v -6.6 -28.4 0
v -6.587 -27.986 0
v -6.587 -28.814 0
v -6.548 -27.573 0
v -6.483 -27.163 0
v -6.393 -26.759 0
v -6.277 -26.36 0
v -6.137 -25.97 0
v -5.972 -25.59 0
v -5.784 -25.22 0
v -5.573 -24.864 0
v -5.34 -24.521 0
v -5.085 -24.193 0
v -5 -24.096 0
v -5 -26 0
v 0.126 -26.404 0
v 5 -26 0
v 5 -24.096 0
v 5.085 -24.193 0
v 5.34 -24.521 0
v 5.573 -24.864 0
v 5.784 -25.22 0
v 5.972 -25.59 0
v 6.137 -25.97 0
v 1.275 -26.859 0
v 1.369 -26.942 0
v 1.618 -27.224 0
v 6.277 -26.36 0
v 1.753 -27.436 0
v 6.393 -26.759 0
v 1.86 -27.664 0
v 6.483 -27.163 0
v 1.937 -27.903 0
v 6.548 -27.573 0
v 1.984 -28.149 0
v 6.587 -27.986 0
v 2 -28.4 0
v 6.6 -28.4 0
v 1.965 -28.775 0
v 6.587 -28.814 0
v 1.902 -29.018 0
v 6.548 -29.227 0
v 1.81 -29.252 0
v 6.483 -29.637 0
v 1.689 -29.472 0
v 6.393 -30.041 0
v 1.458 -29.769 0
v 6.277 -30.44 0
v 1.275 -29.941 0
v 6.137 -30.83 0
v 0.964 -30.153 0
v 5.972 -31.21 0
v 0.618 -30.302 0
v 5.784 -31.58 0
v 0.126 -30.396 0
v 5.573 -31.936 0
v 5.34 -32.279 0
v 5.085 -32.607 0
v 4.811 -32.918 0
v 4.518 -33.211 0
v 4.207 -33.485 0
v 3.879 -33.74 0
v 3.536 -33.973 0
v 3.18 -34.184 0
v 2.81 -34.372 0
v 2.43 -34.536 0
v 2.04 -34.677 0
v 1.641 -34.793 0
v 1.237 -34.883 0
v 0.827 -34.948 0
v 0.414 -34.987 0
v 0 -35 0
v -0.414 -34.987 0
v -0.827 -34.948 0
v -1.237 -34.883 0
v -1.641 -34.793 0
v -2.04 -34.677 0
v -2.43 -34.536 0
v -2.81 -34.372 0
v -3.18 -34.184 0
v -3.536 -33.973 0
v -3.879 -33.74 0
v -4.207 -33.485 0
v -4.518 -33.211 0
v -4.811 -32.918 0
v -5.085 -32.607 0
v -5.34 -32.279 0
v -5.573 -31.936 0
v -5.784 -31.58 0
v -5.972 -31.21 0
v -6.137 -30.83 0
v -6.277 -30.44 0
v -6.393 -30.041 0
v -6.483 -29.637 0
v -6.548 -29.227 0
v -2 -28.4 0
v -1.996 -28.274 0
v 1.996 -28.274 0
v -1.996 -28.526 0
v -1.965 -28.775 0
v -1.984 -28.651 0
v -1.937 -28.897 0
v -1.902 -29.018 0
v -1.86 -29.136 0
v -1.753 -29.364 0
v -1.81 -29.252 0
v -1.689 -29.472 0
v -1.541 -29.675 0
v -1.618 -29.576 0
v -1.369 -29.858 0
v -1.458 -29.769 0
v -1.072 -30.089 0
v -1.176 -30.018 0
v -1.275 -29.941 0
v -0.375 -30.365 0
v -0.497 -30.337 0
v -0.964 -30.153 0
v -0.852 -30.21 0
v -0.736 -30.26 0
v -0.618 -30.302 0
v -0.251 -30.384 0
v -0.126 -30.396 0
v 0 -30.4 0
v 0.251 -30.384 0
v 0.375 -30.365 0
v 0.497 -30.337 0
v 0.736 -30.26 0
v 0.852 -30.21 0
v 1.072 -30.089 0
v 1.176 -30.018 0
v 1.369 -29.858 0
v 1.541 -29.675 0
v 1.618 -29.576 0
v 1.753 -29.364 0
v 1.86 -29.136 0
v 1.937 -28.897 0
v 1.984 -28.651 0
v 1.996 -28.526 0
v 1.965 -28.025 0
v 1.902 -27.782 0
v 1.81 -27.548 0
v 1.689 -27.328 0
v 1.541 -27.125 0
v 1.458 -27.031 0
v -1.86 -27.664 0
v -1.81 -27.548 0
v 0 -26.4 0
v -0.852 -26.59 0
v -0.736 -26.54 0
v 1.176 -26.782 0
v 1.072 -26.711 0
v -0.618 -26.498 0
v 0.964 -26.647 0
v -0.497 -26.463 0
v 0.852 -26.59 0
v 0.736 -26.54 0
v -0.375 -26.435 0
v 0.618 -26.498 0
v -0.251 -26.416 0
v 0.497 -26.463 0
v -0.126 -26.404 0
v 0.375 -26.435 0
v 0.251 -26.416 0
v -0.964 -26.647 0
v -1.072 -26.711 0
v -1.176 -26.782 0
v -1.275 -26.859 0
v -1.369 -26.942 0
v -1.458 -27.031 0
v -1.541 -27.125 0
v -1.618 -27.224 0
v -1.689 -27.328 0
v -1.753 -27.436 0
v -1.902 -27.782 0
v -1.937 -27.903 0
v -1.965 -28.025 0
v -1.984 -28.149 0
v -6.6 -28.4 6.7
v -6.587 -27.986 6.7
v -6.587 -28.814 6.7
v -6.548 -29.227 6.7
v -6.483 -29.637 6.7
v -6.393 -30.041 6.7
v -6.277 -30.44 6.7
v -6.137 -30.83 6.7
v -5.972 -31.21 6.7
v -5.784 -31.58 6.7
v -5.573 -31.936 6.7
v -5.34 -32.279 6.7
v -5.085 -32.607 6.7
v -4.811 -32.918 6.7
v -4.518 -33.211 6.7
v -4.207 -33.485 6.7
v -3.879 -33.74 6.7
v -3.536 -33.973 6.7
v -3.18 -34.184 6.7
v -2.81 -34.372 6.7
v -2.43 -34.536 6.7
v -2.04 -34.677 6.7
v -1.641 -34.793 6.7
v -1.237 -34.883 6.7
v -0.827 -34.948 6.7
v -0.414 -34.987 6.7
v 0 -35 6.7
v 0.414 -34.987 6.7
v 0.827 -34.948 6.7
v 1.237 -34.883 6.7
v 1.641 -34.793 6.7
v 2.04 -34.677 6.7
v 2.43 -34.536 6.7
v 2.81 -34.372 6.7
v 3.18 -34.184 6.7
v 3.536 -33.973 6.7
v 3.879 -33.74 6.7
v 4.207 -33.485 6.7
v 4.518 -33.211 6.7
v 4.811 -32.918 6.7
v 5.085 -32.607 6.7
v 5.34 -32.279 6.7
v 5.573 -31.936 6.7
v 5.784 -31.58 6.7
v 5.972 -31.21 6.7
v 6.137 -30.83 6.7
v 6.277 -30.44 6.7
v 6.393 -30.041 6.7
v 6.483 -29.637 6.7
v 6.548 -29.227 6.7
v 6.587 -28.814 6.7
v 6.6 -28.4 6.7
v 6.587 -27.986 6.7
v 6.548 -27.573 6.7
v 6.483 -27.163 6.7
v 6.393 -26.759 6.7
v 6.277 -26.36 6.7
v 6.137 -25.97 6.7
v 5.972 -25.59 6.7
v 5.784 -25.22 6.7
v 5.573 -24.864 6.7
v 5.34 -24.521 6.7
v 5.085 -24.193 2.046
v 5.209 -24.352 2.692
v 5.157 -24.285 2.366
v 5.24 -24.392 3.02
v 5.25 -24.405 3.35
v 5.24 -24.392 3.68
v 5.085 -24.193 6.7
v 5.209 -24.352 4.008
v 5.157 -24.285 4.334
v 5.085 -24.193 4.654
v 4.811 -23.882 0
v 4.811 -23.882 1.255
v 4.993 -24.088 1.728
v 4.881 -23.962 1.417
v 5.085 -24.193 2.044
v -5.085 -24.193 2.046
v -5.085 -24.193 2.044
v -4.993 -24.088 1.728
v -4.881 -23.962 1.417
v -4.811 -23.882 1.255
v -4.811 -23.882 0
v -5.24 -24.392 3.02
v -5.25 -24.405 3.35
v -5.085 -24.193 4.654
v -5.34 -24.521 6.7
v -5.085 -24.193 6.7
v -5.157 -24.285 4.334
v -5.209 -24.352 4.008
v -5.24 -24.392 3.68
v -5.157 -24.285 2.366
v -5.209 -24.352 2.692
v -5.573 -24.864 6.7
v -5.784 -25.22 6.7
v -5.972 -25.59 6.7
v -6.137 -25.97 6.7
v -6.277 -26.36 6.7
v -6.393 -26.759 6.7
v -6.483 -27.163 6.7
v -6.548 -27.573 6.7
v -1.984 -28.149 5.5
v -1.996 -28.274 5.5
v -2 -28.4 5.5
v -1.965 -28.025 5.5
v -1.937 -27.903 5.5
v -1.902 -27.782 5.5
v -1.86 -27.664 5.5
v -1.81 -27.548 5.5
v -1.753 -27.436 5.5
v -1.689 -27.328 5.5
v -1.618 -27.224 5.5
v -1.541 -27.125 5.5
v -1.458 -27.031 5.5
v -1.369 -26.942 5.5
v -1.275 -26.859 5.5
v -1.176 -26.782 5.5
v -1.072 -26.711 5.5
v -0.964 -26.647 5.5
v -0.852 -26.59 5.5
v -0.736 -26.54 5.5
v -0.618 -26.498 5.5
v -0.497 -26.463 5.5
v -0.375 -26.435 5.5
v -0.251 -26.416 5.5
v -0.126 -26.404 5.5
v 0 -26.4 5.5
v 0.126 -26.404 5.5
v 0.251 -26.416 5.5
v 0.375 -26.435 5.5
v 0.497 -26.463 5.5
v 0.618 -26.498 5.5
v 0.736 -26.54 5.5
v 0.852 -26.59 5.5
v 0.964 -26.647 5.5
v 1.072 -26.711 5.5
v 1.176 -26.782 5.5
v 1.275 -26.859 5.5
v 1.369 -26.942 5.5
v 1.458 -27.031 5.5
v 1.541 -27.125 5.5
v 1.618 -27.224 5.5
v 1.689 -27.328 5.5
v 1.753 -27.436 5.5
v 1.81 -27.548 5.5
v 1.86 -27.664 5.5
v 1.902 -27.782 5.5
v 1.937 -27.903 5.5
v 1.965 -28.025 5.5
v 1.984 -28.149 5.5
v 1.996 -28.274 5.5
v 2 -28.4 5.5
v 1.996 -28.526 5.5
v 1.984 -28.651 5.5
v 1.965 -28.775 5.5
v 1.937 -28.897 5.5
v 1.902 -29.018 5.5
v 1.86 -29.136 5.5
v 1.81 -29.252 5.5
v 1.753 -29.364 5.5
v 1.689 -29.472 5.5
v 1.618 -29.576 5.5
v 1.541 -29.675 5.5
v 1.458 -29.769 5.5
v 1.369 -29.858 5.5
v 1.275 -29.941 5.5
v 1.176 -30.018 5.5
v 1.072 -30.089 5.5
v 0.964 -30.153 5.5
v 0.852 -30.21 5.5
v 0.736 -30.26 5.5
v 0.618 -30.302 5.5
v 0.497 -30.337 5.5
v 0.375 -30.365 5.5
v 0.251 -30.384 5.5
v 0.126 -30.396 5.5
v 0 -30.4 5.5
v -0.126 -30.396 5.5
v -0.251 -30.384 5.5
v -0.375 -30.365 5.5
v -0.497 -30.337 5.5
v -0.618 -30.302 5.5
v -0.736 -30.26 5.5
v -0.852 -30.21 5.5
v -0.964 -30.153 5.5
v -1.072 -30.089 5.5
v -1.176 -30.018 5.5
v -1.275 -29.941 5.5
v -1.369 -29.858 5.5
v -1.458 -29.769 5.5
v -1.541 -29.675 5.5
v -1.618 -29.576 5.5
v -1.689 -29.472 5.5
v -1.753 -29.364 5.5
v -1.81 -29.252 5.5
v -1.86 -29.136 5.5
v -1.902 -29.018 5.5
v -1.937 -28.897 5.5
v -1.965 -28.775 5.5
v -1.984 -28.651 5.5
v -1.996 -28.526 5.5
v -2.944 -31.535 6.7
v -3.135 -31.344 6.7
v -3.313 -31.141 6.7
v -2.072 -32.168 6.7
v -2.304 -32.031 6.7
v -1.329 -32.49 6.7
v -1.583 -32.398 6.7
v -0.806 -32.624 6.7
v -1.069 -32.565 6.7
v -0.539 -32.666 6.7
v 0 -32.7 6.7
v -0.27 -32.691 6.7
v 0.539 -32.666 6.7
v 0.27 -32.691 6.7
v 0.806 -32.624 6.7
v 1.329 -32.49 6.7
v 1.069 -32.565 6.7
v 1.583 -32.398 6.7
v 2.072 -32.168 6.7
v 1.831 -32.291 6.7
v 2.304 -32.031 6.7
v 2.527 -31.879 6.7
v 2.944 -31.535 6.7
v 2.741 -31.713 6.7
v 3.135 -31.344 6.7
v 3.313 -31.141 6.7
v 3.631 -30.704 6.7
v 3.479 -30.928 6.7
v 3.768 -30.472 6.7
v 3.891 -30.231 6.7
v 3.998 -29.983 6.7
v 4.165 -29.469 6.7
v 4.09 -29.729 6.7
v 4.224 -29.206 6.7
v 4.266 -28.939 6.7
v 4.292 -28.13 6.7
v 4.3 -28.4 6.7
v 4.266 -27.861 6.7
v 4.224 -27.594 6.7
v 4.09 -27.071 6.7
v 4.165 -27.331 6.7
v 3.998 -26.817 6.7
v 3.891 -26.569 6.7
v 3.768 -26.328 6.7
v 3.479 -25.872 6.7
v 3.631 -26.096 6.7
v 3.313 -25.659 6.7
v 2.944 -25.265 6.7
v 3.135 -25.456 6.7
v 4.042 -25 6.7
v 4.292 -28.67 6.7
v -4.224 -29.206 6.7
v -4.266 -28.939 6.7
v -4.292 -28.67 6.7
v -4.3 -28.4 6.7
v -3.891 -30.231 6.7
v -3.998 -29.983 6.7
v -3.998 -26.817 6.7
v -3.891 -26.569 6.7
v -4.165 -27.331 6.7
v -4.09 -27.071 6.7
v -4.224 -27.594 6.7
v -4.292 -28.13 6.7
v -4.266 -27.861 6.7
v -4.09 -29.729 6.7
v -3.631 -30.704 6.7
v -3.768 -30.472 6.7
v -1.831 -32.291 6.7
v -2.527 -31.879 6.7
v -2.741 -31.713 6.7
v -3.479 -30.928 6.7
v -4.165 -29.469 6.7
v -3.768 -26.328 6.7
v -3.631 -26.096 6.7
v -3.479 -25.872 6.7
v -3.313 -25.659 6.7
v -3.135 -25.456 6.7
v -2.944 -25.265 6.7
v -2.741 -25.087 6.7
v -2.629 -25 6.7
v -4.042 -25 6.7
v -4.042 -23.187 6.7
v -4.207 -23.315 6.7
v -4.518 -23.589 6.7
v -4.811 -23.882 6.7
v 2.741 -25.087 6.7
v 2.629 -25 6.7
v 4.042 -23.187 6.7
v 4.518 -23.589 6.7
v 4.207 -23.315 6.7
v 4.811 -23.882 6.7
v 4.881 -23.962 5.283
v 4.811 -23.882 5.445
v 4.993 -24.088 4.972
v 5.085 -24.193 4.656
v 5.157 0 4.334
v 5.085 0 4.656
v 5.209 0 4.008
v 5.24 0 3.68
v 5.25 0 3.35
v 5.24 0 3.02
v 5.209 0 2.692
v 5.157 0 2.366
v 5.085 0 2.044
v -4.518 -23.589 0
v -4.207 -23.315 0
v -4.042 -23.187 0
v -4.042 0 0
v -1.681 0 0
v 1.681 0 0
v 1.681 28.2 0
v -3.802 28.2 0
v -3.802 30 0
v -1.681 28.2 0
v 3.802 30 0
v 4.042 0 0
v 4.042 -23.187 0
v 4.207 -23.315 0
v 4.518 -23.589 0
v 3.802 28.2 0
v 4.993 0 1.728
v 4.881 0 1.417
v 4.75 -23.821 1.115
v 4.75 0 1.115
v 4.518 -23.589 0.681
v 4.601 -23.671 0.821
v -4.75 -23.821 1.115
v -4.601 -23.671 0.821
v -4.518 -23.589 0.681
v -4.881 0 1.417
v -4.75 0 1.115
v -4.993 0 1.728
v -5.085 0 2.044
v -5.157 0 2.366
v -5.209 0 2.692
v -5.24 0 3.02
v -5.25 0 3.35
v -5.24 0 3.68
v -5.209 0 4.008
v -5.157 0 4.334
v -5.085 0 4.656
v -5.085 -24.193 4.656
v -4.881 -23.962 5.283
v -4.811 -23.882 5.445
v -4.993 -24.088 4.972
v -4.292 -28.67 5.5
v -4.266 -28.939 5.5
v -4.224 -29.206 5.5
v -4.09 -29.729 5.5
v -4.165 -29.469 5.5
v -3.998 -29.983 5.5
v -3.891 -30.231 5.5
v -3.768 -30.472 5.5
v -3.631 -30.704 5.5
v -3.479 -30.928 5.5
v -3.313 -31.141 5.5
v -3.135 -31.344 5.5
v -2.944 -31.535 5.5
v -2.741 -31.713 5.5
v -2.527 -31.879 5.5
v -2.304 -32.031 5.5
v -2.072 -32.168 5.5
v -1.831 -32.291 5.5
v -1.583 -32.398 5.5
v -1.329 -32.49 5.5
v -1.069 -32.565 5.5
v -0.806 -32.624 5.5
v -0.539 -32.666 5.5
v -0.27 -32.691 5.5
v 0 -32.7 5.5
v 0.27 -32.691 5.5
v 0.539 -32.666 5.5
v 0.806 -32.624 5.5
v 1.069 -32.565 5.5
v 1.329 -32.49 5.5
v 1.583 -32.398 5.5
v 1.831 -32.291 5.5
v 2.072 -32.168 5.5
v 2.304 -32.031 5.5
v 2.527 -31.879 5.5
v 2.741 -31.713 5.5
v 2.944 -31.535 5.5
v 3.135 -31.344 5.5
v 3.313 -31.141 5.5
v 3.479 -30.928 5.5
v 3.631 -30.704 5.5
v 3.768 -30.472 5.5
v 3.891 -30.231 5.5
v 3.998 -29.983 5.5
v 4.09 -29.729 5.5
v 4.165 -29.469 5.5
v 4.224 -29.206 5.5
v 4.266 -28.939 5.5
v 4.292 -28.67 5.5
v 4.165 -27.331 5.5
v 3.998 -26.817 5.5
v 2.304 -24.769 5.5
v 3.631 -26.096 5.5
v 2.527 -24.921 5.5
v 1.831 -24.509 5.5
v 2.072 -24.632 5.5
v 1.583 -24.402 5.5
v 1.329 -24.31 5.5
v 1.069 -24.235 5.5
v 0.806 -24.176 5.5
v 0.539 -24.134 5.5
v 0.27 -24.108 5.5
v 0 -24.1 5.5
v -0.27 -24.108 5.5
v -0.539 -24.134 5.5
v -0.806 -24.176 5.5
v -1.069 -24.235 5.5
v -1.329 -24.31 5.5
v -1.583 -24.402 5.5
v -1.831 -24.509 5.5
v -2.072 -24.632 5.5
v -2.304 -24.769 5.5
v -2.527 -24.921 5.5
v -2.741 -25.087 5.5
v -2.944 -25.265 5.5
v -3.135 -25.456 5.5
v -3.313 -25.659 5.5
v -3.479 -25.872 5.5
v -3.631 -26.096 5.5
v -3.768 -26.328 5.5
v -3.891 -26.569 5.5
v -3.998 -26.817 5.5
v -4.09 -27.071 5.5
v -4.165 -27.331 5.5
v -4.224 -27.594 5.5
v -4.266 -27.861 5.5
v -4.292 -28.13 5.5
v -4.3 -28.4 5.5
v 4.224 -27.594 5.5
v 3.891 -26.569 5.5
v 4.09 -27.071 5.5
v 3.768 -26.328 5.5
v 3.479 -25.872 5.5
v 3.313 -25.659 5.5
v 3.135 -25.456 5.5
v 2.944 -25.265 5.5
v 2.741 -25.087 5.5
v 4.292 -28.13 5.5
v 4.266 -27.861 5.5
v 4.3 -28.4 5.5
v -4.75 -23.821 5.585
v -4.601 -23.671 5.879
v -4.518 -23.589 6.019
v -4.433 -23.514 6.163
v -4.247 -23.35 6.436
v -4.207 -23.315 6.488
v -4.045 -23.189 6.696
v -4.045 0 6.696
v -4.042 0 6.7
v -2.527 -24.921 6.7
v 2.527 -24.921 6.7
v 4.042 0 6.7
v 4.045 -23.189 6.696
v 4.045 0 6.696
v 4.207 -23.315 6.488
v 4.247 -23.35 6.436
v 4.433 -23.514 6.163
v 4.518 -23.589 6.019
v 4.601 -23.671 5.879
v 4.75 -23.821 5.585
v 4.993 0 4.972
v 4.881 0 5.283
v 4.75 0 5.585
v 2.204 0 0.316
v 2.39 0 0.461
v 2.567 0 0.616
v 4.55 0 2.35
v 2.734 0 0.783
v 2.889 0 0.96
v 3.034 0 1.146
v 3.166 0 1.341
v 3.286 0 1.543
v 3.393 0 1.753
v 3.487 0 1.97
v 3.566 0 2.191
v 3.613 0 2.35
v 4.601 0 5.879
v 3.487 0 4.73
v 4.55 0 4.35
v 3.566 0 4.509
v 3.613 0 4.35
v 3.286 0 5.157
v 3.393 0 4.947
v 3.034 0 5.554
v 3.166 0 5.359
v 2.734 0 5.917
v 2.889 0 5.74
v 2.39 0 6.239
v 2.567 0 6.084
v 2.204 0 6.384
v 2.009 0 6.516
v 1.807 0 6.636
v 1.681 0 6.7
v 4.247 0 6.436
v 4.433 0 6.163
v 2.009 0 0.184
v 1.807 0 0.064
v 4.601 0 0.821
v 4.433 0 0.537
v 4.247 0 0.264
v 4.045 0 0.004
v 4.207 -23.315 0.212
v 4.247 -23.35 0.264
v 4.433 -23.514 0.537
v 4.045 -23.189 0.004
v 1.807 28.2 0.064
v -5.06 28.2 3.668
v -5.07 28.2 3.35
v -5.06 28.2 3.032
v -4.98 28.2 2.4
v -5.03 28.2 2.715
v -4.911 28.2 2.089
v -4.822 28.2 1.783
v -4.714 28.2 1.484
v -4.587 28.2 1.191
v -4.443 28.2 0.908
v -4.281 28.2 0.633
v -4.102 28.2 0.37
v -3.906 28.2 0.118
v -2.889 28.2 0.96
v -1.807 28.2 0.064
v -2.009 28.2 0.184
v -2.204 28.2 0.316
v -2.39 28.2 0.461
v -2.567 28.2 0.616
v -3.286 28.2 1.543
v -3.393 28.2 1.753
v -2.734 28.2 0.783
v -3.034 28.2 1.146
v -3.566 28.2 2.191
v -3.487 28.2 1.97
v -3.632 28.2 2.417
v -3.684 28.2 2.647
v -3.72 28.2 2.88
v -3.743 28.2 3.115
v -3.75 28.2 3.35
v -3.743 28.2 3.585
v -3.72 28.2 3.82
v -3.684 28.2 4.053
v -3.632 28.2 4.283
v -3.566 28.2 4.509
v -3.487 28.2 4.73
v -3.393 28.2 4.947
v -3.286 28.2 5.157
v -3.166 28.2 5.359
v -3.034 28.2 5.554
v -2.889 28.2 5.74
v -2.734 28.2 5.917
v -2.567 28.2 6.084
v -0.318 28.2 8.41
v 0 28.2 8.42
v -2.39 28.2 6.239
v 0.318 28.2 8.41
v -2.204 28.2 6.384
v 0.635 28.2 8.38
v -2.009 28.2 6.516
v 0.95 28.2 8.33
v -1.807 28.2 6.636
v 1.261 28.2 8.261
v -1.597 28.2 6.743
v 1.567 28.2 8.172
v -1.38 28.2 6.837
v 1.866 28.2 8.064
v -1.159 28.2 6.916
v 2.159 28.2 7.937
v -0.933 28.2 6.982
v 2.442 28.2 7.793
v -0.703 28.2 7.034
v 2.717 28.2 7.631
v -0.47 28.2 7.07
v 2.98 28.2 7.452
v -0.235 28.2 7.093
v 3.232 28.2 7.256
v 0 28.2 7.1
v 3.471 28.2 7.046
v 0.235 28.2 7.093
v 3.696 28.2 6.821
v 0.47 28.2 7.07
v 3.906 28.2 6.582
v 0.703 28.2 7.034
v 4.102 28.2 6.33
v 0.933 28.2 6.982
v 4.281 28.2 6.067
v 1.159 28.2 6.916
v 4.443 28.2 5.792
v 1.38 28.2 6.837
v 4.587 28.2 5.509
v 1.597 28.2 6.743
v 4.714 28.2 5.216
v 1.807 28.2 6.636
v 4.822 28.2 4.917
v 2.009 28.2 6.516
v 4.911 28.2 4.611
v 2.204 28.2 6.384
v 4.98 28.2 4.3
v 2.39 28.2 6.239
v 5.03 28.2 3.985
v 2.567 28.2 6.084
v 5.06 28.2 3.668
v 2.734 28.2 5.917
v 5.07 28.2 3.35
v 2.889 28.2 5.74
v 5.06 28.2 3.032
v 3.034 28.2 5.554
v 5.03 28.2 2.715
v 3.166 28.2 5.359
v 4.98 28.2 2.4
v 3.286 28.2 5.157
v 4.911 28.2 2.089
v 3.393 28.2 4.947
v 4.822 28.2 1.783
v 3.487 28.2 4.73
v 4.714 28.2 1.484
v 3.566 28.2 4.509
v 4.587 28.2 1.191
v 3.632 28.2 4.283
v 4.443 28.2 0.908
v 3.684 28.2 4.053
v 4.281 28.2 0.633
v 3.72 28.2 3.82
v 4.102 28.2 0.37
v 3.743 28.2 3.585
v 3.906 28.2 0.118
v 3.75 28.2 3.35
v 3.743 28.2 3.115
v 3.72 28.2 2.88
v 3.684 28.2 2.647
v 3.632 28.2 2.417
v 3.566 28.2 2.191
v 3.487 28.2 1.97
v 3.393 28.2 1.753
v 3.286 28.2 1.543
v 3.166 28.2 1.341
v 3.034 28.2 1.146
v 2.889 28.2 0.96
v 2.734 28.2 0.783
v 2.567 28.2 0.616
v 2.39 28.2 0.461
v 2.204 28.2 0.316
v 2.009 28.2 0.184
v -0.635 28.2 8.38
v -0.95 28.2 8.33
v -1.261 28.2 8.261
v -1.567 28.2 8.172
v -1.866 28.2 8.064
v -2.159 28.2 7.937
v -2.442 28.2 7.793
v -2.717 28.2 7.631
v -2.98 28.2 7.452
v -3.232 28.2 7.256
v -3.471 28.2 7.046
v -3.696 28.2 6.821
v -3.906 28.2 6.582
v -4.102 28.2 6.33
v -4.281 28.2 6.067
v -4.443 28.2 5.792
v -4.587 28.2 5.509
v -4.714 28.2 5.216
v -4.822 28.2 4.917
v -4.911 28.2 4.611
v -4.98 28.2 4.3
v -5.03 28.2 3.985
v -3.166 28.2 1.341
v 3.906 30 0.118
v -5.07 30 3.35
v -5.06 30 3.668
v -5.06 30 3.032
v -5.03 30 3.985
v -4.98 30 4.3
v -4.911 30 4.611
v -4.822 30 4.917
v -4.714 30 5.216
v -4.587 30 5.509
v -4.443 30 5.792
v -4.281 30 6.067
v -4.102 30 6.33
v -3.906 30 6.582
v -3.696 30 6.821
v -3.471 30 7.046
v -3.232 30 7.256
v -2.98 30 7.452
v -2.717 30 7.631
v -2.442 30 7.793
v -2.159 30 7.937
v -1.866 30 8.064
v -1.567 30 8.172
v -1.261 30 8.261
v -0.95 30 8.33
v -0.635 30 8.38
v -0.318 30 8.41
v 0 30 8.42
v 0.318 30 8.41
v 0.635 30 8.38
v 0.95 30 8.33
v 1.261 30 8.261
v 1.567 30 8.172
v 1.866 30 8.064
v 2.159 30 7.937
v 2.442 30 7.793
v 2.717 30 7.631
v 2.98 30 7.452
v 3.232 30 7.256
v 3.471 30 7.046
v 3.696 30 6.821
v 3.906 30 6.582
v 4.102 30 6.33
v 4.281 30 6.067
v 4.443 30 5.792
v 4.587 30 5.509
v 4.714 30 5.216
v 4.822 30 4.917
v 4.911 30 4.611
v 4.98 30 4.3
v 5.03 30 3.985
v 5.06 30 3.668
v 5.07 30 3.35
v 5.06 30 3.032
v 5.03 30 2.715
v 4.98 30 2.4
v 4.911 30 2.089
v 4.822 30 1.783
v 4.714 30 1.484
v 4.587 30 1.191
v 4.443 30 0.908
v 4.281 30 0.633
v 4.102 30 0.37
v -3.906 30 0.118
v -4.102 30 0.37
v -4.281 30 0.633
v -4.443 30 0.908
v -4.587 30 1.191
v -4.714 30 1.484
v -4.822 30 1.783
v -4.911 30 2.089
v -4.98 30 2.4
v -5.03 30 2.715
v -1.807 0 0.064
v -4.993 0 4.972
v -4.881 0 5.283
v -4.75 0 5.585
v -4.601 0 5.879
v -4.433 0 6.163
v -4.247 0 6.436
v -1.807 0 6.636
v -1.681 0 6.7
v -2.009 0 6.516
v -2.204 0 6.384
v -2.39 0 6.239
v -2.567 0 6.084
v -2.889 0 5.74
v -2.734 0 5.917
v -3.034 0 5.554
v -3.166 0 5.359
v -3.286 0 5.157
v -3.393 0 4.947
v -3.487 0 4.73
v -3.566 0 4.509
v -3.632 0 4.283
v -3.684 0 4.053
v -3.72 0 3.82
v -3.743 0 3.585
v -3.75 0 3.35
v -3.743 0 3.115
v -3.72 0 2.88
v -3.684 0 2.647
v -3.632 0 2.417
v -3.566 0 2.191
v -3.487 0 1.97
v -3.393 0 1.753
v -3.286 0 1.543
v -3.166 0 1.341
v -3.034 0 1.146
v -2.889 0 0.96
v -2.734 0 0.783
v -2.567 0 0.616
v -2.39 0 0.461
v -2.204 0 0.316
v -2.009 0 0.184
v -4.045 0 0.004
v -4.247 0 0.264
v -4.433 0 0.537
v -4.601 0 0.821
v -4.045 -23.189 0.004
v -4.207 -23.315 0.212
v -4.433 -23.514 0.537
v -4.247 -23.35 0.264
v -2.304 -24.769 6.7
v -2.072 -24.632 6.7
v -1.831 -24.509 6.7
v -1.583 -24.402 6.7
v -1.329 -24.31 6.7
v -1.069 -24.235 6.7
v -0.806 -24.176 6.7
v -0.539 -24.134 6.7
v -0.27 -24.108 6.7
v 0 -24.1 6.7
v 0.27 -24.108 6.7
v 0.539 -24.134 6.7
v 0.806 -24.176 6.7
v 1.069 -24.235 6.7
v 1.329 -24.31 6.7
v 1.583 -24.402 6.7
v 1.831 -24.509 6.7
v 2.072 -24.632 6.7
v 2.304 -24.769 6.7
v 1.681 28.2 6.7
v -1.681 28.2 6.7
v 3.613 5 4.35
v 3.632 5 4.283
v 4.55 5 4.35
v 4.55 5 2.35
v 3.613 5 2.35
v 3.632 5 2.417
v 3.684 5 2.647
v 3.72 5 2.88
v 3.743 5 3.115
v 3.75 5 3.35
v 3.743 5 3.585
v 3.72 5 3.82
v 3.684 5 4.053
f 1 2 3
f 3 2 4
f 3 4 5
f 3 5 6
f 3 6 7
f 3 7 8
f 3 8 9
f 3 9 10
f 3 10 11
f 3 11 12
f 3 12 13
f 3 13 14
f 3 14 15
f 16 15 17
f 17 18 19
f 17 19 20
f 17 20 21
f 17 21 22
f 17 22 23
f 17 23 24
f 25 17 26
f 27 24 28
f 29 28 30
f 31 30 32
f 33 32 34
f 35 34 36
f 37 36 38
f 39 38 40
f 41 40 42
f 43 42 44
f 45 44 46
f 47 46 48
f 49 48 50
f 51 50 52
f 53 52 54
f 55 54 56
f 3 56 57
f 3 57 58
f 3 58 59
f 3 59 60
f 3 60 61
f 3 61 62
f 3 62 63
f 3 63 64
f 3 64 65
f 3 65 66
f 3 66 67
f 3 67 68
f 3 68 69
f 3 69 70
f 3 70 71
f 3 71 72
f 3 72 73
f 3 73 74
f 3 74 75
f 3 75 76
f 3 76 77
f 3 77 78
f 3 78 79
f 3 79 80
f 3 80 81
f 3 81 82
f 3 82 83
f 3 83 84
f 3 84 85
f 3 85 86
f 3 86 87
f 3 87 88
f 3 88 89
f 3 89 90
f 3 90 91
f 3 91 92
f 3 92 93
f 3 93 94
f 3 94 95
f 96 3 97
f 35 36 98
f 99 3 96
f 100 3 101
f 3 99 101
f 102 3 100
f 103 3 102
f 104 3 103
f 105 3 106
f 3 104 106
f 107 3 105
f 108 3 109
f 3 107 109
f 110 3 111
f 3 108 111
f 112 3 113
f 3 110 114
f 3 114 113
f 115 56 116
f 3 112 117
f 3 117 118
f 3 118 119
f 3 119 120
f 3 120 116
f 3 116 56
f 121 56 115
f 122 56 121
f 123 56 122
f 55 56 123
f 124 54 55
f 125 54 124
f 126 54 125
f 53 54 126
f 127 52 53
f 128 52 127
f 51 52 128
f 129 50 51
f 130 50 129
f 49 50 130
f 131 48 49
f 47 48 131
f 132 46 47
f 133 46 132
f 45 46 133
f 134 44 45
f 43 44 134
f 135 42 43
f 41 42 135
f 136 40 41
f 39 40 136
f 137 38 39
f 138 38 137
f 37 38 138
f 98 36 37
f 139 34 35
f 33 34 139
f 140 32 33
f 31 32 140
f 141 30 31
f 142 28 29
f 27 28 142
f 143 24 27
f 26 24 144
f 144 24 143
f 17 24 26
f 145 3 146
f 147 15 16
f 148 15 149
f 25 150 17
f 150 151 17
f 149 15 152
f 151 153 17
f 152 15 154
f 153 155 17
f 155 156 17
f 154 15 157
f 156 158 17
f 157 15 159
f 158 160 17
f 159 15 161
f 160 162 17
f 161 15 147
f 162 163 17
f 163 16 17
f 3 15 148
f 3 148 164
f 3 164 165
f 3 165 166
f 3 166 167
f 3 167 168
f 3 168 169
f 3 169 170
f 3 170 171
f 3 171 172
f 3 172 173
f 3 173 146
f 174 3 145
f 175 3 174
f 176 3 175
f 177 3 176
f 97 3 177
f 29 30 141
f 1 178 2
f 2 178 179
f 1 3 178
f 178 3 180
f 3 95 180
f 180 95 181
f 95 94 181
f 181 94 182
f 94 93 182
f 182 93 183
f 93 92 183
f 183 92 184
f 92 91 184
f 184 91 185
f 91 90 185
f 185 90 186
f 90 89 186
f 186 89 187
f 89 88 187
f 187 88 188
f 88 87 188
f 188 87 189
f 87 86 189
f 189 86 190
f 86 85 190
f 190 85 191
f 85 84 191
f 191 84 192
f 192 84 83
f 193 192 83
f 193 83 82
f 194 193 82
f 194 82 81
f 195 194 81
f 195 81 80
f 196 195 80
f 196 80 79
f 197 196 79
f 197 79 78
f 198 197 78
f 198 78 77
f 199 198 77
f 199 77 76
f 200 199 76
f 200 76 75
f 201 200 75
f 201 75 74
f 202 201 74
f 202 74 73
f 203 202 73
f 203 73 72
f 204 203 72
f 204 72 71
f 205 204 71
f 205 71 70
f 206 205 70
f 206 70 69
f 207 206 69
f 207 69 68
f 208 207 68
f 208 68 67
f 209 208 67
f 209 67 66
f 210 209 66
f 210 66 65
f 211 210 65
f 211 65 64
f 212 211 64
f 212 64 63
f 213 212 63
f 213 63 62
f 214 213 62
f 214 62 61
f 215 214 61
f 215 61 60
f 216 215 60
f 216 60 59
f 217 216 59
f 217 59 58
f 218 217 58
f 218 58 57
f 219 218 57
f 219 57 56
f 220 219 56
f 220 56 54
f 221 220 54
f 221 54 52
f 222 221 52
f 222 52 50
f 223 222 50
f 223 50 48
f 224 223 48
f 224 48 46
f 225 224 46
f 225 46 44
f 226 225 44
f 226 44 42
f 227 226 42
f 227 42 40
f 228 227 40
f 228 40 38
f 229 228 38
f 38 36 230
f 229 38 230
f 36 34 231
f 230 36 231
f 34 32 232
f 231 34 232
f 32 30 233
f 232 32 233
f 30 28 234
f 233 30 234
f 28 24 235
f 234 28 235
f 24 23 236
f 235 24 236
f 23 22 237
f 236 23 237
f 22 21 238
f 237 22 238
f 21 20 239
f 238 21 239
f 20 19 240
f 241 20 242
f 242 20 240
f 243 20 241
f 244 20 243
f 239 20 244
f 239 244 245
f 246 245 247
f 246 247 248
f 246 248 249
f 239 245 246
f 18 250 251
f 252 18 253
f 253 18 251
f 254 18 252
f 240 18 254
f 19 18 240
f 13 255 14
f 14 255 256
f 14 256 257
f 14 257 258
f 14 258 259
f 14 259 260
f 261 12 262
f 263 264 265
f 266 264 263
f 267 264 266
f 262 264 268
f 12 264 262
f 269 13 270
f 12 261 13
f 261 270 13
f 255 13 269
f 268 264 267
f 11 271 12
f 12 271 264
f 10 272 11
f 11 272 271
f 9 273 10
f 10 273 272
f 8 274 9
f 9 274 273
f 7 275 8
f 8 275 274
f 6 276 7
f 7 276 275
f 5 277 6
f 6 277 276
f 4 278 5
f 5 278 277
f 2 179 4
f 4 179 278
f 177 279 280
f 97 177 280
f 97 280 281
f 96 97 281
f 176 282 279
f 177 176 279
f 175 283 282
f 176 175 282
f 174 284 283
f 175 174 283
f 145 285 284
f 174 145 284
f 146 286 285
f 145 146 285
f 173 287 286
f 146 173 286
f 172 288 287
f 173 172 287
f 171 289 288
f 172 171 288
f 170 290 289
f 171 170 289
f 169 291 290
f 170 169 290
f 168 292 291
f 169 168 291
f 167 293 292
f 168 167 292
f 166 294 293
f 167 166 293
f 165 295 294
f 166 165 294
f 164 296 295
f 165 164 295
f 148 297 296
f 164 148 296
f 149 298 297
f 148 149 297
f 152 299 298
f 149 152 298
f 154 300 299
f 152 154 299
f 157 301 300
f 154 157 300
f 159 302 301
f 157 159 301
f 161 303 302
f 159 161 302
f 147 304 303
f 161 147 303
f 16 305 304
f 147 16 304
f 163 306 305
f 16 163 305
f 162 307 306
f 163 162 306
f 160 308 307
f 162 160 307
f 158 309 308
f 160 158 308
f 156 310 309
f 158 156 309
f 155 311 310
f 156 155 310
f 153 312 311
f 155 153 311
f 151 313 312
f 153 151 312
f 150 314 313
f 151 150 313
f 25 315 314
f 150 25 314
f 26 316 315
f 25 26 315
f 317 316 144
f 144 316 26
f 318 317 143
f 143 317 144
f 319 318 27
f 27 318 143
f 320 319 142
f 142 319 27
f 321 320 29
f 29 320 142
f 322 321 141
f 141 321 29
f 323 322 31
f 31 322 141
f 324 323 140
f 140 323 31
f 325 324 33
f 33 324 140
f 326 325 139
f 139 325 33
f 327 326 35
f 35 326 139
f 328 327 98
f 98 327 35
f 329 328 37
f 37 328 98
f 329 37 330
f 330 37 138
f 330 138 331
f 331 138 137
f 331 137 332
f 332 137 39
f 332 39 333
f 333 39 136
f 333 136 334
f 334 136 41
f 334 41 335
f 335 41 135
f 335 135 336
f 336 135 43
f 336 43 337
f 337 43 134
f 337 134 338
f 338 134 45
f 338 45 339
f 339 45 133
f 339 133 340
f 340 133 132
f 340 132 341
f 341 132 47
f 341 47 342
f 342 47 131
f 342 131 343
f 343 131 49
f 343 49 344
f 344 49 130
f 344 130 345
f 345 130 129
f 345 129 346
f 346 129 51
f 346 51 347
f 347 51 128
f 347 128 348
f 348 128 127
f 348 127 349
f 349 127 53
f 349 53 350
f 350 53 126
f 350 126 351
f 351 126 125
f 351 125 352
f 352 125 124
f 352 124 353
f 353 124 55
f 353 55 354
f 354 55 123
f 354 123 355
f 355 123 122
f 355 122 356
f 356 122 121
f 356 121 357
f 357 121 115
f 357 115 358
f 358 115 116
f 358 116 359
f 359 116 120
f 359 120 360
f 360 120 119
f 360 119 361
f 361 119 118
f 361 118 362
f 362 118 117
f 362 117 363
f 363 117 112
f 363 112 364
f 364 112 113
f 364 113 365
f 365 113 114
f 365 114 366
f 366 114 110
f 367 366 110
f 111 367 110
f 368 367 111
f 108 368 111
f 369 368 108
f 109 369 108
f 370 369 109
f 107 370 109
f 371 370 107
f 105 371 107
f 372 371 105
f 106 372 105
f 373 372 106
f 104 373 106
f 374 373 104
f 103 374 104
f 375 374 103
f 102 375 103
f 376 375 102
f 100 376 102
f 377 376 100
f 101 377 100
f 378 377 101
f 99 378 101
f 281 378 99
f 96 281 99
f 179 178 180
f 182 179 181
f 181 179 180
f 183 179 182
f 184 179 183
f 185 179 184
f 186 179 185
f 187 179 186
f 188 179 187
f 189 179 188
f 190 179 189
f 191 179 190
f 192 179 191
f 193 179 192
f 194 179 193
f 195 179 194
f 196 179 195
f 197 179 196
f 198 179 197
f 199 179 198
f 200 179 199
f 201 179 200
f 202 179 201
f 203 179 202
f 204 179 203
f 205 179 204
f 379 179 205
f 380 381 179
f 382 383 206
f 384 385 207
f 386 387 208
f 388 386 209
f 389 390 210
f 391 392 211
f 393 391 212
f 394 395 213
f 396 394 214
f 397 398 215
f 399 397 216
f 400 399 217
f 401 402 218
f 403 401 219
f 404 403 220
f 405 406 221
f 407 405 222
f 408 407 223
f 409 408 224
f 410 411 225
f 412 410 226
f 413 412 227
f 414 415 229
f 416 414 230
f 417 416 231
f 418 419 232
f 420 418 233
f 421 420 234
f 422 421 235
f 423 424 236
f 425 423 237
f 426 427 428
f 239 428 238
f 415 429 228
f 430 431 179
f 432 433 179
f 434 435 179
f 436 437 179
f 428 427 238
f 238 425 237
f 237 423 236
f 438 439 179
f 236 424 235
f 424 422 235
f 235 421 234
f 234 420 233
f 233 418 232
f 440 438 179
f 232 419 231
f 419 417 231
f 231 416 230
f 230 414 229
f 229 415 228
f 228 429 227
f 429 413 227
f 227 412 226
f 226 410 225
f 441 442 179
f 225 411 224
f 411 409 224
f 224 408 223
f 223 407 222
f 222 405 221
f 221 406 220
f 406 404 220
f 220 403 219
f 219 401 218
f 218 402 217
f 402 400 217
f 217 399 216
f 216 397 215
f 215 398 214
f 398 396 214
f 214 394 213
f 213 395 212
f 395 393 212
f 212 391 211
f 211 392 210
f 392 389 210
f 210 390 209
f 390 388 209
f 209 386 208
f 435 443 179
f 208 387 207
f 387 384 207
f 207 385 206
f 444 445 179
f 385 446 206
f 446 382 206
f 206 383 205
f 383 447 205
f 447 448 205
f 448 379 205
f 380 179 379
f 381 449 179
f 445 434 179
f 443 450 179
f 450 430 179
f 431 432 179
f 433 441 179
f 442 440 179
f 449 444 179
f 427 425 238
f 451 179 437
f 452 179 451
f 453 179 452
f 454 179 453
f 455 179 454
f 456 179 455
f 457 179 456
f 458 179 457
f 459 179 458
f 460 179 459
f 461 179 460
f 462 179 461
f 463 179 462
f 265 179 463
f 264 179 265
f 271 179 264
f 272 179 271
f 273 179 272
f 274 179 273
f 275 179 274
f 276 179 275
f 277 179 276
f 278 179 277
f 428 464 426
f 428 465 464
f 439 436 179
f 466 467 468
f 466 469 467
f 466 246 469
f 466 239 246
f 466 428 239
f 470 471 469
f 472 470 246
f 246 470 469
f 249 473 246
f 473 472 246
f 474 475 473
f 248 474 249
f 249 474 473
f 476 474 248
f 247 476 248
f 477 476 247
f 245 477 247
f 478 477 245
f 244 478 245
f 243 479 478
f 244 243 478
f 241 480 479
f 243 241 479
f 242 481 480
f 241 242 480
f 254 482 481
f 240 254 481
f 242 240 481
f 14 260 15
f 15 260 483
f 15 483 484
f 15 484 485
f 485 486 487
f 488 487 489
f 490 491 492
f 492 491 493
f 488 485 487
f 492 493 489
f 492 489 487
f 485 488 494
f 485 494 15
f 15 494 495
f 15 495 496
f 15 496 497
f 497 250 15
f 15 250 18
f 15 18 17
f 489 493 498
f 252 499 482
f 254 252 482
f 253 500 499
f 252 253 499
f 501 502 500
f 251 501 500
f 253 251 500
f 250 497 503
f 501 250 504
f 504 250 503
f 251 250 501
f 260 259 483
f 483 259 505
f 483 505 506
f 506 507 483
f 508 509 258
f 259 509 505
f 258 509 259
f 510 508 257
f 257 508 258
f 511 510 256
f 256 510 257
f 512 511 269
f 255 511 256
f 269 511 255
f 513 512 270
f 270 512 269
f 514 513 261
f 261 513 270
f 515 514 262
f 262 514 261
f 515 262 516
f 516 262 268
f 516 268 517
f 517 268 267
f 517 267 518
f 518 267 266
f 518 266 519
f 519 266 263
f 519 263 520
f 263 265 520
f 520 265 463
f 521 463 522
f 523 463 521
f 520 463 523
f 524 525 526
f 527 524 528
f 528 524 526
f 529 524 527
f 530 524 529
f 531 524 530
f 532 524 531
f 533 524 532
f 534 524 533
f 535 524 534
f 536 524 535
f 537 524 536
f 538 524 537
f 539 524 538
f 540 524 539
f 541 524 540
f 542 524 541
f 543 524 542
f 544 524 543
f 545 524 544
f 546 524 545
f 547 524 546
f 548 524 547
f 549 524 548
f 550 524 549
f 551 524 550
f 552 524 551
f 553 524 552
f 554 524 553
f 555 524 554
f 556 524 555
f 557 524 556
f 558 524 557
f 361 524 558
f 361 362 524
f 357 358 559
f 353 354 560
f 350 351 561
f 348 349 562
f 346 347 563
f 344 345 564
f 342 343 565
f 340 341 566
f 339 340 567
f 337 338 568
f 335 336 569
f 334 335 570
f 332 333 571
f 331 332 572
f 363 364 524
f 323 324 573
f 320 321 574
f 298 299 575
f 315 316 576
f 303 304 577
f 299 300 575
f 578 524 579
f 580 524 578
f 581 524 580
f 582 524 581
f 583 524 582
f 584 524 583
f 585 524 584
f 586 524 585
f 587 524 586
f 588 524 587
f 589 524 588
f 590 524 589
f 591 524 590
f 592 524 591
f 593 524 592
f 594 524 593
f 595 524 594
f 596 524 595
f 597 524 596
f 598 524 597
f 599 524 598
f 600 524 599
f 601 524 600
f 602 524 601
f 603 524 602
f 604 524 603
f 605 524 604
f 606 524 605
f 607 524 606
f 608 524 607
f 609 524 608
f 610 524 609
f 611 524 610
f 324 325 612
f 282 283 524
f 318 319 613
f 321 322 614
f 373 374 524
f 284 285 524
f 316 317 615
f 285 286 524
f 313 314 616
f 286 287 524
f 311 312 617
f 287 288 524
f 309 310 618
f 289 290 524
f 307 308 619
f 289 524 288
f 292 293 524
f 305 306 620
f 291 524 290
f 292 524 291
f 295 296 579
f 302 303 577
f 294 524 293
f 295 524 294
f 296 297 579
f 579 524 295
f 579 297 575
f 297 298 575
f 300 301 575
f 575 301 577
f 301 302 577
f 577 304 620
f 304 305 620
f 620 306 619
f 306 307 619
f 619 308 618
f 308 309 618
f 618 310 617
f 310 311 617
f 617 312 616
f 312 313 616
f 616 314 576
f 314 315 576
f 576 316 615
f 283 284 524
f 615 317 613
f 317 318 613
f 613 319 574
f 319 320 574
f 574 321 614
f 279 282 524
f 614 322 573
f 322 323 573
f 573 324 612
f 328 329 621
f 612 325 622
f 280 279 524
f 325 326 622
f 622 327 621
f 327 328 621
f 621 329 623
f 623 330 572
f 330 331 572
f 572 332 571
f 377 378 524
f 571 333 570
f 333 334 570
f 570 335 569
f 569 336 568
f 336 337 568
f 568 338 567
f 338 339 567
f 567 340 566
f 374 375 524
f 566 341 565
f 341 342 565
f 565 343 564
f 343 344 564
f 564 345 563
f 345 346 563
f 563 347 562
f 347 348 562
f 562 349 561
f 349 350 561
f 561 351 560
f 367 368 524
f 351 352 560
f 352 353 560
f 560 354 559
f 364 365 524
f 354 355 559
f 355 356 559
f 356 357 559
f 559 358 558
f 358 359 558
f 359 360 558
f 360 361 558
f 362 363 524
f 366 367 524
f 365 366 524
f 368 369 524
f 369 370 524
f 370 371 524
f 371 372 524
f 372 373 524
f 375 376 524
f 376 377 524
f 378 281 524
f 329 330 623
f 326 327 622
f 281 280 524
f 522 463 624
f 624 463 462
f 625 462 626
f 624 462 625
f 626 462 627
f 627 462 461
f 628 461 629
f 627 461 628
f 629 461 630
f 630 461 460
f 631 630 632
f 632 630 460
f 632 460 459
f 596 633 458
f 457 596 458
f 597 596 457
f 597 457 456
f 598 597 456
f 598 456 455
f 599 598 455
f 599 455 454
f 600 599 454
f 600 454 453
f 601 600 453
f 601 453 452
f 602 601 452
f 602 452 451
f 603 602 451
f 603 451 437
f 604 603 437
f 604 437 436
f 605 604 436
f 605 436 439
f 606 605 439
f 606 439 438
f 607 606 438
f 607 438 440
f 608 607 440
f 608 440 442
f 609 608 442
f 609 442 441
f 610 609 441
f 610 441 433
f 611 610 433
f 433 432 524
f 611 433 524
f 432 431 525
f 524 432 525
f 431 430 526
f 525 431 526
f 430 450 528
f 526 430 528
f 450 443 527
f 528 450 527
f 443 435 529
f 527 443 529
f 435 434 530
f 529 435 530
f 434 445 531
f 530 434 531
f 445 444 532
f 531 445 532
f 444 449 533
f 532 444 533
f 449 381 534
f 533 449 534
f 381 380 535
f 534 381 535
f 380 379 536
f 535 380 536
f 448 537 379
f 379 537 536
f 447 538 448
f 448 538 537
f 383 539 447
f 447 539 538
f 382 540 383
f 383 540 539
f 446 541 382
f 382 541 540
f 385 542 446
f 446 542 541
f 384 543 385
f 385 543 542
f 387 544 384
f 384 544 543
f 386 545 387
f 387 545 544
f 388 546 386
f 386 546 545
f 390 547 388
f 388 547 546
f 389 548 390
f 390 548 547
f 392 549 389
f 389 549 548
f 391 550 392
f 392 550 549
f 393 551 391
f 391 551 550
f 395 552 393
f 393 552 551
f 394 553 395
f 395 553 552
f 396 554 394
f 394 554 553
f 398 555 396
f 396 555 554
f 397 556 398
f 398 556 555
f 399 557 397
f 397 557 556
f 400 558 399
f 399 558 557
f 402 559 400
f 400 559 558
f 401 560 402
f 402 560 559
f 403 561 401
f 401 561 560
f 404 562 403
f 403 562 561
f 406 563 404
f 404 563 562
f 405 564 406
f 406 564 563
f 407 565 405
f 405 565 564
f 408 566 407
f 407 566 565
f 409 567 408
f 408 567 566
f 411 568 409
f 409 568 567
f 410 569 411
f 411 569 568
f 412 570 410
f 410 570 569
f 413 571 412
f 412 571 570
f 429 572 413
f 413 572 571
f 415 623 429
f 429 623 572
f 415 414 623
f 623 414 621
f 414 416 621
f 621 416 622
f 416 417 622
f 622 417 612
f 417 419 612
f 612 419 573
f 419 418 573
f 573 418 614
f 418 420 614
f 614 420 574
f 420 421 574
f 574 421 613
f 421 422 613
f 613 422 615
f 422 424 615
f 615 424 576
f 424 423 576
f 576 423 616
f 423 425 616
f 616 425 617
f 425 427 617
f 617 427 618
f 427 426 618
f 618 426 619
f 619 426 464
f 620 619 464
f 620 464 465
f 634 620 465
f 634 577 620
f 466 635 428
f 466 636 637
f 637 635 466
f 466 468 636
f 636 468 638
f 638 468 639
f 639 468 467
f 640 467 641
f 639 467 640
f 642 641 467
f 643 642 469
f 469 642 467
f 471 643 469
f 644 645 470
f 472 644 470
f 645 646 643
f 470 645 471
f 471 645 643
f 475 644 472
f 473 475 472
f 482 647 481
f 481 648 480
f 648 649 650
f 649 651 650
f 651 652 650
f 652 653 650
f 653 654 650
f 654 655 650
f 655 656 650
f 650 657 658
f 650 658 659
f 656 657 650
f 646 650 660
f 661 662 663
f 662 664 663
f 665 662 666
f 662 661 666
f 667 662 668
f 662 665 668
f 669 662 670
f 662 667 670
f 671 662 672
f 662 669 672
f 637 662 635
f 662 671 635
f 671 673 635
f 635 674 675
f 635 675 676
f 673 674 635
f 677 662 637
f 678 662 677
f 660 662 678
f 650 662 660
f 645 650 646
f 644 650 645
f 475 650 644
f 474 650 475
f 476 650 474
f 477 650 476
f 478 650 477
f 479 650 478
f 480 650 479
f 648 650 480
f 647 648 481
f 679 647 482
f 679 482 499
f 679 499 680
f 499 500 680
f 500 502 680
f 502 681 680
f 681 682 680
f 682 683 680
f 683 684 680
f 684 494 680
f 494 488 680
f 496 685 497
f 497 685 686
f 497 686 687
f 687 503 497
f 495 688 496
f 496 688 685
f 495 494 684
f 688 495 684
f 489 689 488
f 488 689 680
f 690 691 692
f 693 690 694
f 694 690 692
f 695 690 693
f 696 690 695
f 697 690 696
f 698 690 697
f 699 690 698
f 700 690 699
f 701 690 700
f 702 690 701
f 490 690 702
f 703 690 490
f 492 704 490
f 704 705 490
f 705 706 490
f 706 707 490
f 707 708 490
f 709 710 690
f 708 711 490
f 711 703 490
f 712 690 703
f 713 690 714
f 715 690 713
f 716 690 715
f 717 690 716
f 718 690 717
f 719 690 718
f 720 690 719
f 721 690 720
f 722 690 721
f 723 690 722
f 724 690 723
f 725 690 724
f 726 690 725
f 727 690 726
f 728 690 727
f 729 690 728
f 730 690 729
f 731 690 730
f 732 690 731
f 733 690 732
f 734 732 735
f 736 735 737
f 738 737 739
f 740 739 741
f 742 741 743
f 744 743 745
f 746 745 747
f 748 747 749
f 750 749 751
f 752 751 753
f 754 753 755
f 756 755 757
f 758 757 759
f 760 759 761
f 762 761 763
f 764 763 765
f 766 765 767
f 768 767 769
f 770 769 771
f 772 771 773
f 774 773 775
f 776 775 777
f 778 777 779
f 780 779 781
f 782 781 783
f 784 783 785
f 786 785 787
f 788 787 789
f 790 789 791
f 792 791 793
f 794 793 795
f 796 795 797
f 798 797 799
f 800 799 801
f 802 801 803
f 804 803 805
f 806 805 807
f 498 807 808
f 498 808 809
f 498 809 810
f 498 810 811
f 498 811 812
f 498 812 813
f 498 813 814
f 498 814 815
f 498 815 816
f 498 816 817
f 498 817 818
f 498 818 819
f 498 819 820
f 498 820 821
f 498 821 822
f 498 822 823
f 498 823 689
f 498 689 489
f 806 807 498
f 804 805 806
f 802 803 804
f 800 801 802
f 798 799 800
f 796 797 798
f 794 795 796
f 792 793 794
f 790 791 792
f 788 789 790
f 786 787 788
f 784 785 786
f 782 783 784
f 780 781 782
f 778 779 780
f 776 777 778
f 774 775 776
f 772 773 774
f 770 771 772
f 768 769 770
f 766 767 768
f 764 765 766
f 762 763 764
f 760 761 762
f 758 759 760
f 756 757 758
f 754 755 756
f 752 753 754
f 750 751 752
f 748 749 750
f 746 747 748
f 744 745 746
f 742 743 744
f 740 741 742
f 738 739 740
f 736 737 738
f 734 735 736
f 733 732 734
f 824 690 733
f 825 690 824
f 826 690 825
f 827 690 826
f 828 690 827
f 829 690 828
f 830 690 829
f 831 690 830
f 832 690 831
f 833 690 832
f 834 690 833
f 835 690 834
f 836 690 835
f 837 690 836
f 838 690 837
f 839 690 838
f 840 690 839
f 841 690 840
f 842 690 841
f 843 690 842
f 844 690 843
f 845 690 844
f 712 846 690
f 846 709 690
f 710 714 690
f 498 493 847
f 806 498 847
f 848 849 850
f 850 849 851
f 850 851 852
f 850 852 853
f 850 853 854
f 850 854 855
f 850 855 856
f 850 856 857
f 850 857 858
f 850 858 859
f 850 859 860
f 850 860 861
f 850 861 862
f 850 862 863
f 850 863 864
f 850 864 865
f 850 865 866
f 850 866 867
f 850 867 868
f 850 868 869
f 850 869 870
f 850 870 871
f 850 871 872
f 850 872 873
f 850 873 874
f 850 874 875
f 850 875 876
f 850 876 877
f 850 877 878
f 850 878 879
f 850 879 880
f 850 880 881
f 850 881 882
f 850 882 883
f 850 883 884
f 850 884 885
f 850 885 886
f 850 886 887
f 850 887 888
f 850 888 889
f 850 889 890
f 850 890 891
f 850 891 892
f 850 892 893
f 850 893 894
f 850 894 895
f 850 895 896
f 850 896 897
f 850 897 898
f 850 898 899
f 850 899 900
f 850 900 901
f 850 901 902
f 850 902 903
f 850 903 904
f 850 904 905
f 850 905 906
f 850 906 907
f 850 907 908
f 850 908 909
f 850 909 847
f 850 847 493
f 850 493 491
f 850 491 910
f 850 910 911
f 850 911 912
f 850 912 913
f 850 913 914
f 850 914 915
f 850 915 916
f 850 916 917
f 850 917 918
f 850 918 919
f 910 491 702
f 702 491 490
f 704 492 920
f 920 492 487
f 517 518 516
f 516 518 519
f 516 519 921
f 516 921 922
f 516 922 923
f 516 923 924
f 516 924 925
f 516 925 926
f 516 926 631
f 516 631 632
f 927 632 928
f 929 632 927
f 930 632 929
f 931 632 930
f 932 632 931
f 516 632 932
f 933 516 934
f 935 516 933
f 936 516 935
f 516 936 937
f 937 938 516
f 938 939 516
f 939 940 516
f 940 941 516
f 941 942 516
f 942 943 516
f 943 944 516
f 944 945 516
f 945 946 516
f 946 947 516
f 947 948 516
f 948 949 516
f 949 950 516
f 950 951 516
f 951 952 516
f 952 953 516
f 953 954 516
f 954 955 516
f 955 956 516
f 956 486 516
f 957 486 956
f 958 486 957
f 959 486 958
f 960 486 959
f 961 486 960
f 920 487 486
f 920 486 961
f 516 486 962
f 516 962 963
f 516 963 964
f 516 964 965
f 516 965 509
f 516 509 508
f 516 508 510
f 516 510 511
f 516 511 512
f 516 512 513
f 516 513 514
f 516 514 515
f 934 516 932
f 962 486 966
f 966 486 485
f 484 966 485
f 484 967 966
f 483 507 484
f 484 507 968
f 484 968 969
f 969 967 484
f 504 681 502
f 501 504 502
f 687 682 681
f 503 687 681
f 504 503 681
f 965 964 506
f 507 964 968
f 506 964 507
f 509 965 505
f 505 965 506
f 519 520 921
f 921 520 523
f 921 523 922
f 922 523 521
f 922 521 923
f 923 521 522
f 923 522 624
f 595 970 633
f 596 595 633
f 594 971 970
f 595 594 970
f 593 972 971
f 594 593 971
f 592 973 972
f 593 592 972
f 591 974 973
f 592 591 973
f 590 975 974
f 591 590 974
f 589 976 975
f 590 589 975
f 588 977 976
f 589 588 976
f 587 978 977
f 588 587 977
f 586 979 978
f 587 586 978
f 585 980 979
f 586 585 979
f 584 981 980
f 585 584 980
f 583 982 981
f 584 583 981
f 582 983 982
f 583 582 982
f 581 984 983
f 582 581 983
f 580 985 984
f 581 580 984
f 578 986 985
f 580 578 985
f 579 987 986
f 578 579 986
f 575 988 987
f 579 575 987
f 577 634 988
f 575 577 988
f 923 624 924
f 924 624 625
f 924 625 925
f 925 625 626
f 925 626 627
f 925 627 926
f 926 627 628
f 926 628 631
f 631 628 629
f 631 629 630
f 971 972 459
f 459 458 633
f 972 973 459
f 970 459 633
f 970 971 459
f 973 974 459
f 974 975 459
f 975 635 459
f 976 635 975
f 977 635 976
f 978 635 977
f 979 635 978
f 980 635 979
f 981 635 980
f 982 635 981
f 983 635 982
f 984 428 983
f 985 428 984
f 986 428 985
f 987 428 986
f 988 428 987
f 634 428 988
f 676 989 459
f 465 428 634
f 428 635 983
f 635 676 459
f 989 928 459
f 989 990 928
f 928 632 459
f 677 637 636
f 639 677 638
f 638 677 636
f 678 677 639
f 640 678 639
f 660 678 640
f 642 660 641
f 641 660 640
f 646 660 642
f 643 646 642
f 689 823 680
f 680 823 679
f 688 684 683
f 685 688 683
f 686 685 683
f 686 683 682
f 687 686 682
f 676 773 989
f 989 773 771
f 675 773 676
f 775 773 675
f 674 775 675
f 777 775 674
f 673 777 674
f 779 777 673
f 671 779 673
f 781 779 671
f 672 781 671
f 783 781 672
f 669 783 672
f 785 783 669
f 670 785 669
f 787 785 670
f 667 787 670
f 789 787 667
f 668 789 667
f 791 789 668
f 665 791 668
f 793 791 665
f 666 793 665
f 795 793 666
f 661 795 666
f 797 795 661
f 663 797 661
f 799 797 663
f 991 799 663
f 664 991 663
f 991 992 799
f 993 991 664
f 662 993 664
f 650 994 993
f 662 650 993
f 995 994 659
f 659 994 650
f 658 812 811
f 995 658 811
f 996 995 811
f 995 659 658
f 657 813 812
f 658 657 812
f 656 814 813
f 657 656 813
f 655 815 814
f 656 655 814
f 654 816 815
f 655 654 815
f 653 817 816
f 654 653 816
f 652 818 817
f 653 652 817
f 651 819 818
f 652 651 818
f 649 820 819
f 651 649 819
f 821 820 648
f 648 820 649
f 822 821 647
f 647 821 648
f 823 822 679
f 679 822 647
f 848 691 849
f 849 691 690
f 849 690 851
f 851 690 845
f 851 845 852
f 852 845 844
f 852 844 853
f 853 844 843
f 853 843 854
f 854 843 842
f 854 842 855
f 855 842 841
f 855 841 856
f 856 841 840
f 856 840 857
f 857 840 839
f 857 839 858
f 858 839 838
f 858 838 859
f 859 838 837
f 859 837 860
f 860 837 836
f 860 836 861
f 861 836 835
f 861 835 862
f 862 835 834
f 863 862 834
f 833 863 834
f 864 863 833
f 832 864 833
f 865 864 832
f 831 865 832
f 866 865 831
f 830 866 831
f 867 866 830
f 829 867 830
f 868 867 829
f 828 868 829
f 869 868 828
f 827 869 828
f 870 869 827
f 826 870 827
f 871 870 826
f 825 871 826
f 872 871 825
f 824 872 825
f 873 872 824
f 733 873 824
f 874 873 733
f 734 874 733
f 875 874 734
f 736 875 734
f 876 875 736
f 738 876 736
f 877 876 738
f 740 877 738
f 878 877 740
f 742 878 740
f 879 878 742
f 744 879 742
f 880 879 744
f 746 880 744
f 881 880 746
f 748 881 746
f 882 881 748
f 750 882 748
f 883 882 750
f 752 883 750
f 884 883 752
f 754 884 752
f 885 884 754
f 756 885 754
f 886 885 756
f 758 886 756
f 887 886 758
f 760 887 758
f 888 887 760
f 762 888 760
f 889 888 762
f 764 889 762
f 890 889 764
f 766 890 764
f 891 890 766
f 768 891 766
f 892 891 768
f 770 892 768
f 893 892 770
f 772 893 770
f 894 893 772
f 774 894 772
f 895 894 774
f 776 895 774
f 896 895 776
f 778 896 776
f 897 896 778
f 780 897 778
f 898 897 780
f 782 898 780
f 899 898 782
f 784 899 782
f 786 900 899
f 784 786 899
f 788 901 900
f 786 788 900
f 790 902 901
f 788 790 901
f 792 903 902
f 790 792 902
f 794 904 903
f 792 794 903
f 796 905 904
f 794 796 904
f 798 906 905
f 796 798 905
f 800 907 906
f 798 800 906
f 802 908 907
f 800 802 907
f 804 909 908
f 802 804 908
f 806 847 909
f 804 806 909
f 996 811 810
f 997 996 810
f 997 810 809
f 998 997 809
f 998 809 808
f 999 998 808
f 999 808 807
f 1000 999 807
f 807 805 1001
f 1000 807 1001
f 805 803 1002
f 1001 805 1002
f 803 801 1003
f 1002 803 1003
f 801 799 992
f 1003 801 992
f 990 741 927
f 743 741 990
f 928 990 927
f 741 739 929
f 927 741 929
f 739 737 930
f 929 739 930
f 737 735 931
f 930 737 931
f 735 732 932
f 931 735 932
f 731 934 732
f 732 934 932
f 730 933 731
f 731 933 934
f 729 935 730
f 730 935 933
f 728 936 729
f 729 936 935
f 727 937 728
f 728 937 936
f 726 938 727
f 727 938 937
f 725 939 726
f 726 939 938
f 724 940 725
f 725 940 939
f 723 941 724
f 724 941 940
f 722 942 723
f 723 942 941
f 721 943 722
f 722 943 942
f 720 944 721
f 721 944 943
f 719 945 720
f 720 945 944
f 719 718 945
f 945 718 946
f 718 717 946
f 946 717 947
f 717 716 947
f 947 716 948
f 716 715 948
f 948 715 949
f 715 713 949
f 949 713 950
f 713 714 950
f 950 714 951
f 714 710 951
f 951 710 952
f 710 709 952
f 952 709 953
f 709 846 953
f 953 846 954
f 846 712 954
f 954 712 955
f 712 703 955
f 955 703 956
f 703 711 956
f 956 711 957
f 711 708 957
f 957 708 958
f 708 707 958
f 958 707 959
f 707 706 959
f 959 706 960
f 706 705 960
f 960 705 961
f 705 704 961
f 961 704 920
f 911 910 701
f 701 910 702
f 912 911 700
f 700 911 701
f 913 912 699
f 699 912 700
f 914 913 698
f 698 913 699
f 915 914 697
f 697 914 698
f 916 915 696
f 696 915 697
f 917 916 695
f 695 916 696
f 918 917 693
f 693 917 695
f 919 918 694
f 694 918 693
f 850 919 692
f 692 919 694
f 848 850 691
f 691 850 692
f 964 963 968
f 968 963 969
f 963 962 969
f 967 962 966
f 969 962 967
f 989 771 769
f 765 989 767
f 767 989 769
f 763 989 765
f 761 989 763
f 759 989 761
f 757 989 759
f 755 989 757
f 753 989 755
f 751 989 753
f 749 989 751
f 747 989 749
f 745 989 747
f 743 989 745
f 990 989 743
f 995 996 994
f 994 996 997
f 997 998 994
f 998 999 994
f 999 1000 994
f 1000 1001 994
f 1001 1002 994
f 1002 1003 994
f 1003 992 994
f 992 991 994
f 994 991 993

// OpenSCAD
/*
	Ersatzteil für Tischleuchte
	Harry 1.5.2015
*/

$fn = 100;
translate([0,30,3.35]){
rotate([90,0,0]){
difference(){
	union(){
		cylinder(h=1.8,r=5.07);
		cylinder(h=30, r=3.75);
		translate([0,0,30]) cylinder(h=25,r=5.25);
		translate([0,0,58.4]) rotate([90,0,0]) cylinder(h=6.7,r=6.6,center=true);
		translate([2.75,-1,25]) cube([1.8,2,5]);
	}

	translate([-5,3.35,1.8]) cube([10,5,55]);
	mirror ([0,1,0]) {
		translate([-5,3.35,-1]) cube([10,5,57]);
	}
	translate([0,0,58.4]){
		rotate([90,0,0]) cylinder(h=10,r=2,center=true);
		translate([0,4.05,0]){
			rotate([90,0,0]) cylinder(h=3.8,r=4.3,center=true);
		}
	}
}
}
}
